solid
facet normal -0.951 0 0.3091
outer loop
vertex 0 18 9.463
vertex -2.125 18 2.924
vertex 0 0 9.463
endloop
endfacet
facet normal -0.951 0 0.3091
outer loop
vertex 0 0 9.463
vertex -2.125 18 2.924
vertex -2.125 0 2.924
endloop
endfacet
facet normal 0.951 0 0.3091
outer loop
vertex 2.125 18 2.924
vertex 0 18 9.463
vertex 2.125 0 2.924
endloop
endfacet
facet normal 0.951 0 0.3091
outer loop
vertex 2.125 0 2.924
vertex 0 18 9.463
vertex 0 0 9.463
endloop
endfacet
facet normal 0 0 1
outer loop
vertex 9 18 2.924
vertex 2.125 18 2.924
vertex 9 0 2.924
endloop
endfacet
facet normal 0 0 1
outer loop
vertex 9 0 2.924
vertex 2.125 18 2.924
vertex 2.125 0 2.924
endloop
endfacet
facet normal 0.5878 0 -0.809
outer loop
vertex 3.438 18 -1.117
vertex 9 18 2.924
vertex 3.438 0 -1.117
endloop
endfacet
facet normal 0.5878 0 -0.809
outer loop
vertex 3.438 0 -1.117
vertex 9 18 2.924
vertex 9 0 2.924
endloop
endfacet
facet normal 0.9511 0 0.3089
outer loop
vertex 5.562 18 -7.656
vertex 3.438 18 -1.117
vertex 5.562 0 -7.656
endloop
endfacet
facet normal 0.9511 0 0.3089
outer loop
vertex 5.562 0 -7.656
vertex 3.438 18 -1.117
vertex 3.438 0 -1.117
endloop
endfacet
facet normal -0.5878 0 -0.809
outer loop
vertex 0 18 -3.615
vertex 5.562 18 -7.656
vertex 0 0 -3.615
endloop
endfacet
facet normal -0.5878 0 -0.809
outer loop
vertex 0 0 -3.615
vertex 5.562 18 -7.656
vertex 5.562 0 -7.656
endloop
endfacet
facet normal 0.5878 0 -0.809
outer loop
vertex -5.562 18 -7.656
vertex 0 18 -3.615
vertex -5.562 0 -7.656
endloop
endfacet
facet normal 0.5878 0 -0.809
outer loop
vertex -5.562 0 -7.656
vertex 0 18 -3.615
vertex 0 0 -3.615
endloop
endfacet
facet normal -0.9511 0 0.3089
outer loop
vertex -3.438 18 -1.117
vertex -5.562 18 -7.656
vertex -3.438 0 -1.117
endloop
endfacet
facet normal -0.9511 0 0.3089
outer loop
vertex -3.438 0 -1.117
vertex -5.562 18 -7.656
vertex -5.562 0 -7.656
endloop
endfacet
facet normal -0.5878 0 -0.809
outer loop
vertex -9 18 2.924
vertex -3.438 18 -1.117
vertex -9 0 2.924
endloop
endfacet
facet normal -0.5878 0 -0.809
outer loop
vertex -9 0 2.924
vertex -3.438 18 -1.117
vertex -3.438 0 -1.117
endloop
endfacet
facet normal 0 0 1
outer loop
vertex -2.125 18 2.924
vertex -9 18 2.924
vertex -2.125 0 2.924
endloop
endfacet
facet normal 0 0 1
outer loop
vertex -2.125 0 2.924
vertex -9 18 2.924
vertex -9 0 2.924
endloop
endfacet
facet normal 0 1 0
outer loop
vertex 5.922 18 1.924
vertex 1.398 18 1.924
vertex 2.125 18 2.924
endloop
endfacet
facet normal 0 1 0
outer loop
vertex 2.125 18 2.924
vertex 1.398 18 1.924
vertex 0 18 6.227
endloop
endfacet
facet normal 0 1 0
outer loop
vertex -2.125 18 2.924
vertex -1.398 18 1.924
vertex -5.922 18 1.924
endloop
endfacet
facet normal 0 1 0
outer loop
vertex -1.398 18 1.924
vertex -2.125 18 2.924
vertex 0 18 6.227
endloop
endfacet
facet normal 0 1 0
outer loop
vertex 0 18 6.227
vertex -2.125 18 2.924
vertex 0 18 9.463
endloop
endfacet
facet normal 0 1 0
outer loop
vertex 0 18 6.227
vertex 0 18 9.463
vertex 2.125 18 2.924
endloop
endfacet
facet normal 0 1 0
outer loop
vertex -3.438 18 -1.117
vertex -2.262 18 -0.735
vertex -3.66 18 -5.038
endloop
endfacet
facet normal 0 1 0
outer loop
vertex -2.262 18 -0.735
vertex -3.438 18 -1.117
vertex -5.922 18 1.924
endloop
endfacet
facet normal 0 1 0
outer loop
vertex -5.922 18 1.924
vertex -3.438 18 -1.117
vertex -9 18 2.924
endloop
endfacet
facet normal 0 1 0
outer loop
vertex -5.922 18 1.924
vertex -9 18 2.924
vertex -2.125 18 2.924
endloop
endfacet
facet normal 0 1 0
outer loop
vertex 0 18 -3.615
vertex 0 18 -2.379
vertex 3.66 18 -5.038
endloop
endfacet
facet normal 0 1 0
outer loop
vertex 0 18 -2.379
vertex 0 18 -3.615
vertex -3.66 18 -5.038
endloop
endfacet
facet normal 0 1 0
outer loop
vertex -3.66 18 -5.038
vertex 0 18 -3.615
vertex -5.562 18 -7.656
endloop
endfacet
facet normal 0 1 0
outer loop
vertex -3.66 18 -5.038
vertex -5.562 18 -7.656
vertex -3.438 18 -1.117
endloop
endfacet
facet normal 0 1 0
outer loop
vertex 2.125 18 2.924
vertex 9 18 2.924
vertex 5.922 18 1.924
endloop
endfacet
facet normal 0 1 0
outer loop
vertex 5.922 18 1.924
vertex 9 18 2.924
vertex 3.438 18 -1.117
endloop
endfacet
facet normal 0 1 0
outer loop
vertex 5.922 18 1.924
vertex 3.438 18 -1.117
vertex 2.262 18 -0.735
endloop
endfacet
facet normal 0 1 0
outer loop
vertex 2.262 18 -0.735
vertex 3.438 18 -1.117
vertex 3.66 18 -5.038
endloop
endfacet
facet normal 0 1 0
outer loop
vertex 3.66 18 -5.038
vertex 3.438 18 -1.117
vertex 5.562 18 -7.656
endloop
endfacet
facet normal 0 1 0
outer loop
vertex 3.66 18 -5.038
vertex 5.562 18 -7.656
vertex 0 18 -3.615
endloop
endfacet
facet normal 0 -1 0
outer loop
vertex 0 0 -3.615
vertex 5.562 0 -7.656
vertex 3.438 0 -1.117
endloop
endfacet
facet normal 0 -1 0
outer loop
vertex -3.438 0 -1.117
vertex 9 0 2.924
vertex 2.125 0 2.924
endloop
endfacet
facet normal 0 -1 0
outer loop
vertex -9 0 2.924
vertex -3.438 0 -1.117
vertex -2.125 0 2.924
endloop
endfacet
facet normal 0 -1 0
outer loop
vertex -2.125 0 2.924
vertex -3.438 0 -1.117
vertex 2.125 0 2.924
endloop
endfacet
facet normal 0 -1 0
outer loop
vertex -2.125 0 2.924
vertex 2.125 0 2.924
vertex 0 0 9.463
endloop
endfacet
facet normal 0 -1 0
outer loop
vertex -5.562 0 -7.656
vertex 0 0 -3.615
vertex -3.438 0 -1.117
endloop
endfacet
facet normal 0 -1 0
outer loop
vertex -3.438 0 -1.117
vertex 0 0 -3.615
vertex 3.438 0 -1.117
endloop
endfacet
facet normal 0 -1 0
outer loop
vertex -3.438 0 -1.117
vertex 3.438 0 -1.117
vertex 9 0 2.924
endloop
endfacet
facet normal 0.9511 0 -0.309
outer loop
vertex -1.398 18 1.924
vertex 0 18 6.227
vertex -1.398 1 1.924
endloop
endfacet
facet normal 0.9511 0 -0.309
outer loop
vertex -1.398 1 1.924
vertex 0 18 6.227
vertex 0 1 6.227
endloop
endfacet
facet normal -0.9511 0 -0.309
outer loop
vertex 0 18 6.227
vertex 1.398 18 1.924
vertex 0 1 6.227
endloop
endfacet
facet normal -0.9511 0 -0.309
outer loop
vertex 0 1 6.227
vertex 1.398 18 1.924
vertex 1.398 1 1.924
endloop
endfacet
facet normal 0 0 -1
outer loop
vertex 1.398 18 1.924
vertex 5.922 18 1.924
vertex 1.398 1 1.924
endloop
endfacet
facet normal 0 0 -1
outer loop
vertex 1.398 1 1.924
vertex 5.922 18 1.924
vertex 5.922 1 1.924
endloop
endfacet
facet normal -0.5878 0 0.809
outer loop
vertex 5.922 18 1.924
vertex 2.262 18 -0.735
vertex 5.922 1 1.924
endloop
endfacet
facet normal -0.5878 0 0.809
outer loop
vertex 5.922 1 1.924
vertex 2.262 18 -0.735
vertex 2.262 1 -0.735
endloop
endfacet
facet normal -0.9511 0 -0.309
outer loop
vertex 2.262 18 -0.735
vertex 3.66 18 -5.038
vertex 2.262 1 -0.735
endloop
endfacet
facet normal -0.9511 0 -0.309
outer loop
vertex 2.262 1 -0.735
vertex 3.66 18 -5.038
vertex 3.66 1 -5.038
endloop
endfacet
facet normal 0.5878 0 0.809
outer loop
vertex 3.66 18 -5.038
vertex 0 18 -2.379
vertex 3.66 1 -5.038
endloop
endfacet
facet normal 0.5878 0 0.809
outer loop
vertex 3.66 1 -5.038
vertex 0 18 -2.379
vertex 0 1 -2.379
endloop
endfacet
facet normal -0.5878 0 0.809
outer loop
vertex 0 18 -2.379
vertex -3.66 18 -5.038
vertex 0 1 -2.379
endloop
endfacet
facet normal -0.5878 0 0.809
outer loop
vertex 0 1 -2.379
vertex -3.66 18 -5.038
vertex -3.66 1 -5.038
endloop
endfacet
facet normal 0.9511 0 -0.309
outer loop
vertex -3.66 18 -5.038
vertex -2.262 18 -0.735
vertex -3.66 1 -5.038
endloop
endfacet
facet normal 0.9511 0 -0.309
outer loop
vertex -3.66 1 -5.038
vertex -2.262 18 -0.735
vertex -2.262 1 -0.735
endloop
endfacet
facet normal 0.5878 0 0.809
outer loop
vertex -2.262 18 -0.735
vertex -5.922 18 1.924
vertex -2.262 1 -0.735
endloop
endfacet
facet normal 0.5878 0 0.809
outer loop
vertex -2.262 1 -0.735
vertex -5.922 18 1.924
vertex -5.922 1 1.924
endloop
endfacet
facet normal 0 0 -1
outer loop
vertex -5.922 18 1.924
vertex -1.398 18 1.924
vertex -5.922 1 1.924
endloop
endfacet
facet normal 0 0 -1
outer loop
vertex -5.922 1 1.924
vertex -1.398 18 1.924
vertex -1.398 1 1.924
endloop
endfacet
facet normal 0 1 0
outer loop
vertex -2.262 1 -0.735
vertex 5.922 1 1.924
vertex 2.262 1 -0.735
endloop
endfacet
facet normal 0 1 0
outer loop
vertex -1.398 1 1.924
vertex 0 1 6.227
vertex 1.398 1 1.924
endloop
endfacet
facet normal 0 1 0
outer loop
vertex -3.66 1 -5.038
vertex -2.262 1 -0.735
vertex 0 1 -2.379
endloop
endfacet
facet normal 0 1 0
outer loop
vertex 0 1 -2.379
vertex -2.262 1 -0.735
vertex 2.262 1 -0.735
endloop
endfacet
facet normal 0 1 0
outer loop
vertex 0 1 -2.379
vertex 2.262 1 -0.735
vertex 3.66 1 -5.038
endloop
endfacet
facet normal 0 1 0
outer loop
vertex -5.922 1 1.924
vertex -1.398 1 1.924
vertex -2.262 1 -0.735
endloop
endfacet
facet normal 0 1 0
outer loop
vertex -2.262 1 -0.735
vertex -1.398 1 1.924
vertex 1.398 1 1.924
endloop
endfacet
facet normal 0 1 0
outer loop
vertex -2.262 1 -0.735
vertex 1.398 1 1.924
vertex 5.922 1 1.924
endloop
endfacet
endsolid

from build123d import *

# Parameters (mm, degrees)
BOSS_EXTRUDE1_DEPTH = 18
SHELL2_T            = -1


with BuildPart() as part:
    # Sketch1 → Boss-Extrude1 (new body)
    with BuildSketch(Plane(origin=(0, 0, 0), x_dir=(1, 0, 0), z_dir=(0, 1, 0))):
        Polygon((2.124611797, -2.924277266), (0, -9.463160018), (-2.124611797, -2.924277266), (-9, -2.924277266), (-3.437694101, 1.116974523), (-5.562305899, 7.655857275), (0, 3.614605486), (5.562305899, 7.655857275), (3.437694101, 1.116974523), (9, -2.924277266), align=None)
    extrude(amount=BOSS_EXTRUDE1_DEPTH)

    # Shell2
    shell2_openings = [part.faces().sort_by_distance(p)[0] for p in [
        (0, 18, 0),
    ]]
    offset(amount=SHELL2_T, openings=shell2_openings, kind=Kind.INTERSECTION)


solid = part.part
